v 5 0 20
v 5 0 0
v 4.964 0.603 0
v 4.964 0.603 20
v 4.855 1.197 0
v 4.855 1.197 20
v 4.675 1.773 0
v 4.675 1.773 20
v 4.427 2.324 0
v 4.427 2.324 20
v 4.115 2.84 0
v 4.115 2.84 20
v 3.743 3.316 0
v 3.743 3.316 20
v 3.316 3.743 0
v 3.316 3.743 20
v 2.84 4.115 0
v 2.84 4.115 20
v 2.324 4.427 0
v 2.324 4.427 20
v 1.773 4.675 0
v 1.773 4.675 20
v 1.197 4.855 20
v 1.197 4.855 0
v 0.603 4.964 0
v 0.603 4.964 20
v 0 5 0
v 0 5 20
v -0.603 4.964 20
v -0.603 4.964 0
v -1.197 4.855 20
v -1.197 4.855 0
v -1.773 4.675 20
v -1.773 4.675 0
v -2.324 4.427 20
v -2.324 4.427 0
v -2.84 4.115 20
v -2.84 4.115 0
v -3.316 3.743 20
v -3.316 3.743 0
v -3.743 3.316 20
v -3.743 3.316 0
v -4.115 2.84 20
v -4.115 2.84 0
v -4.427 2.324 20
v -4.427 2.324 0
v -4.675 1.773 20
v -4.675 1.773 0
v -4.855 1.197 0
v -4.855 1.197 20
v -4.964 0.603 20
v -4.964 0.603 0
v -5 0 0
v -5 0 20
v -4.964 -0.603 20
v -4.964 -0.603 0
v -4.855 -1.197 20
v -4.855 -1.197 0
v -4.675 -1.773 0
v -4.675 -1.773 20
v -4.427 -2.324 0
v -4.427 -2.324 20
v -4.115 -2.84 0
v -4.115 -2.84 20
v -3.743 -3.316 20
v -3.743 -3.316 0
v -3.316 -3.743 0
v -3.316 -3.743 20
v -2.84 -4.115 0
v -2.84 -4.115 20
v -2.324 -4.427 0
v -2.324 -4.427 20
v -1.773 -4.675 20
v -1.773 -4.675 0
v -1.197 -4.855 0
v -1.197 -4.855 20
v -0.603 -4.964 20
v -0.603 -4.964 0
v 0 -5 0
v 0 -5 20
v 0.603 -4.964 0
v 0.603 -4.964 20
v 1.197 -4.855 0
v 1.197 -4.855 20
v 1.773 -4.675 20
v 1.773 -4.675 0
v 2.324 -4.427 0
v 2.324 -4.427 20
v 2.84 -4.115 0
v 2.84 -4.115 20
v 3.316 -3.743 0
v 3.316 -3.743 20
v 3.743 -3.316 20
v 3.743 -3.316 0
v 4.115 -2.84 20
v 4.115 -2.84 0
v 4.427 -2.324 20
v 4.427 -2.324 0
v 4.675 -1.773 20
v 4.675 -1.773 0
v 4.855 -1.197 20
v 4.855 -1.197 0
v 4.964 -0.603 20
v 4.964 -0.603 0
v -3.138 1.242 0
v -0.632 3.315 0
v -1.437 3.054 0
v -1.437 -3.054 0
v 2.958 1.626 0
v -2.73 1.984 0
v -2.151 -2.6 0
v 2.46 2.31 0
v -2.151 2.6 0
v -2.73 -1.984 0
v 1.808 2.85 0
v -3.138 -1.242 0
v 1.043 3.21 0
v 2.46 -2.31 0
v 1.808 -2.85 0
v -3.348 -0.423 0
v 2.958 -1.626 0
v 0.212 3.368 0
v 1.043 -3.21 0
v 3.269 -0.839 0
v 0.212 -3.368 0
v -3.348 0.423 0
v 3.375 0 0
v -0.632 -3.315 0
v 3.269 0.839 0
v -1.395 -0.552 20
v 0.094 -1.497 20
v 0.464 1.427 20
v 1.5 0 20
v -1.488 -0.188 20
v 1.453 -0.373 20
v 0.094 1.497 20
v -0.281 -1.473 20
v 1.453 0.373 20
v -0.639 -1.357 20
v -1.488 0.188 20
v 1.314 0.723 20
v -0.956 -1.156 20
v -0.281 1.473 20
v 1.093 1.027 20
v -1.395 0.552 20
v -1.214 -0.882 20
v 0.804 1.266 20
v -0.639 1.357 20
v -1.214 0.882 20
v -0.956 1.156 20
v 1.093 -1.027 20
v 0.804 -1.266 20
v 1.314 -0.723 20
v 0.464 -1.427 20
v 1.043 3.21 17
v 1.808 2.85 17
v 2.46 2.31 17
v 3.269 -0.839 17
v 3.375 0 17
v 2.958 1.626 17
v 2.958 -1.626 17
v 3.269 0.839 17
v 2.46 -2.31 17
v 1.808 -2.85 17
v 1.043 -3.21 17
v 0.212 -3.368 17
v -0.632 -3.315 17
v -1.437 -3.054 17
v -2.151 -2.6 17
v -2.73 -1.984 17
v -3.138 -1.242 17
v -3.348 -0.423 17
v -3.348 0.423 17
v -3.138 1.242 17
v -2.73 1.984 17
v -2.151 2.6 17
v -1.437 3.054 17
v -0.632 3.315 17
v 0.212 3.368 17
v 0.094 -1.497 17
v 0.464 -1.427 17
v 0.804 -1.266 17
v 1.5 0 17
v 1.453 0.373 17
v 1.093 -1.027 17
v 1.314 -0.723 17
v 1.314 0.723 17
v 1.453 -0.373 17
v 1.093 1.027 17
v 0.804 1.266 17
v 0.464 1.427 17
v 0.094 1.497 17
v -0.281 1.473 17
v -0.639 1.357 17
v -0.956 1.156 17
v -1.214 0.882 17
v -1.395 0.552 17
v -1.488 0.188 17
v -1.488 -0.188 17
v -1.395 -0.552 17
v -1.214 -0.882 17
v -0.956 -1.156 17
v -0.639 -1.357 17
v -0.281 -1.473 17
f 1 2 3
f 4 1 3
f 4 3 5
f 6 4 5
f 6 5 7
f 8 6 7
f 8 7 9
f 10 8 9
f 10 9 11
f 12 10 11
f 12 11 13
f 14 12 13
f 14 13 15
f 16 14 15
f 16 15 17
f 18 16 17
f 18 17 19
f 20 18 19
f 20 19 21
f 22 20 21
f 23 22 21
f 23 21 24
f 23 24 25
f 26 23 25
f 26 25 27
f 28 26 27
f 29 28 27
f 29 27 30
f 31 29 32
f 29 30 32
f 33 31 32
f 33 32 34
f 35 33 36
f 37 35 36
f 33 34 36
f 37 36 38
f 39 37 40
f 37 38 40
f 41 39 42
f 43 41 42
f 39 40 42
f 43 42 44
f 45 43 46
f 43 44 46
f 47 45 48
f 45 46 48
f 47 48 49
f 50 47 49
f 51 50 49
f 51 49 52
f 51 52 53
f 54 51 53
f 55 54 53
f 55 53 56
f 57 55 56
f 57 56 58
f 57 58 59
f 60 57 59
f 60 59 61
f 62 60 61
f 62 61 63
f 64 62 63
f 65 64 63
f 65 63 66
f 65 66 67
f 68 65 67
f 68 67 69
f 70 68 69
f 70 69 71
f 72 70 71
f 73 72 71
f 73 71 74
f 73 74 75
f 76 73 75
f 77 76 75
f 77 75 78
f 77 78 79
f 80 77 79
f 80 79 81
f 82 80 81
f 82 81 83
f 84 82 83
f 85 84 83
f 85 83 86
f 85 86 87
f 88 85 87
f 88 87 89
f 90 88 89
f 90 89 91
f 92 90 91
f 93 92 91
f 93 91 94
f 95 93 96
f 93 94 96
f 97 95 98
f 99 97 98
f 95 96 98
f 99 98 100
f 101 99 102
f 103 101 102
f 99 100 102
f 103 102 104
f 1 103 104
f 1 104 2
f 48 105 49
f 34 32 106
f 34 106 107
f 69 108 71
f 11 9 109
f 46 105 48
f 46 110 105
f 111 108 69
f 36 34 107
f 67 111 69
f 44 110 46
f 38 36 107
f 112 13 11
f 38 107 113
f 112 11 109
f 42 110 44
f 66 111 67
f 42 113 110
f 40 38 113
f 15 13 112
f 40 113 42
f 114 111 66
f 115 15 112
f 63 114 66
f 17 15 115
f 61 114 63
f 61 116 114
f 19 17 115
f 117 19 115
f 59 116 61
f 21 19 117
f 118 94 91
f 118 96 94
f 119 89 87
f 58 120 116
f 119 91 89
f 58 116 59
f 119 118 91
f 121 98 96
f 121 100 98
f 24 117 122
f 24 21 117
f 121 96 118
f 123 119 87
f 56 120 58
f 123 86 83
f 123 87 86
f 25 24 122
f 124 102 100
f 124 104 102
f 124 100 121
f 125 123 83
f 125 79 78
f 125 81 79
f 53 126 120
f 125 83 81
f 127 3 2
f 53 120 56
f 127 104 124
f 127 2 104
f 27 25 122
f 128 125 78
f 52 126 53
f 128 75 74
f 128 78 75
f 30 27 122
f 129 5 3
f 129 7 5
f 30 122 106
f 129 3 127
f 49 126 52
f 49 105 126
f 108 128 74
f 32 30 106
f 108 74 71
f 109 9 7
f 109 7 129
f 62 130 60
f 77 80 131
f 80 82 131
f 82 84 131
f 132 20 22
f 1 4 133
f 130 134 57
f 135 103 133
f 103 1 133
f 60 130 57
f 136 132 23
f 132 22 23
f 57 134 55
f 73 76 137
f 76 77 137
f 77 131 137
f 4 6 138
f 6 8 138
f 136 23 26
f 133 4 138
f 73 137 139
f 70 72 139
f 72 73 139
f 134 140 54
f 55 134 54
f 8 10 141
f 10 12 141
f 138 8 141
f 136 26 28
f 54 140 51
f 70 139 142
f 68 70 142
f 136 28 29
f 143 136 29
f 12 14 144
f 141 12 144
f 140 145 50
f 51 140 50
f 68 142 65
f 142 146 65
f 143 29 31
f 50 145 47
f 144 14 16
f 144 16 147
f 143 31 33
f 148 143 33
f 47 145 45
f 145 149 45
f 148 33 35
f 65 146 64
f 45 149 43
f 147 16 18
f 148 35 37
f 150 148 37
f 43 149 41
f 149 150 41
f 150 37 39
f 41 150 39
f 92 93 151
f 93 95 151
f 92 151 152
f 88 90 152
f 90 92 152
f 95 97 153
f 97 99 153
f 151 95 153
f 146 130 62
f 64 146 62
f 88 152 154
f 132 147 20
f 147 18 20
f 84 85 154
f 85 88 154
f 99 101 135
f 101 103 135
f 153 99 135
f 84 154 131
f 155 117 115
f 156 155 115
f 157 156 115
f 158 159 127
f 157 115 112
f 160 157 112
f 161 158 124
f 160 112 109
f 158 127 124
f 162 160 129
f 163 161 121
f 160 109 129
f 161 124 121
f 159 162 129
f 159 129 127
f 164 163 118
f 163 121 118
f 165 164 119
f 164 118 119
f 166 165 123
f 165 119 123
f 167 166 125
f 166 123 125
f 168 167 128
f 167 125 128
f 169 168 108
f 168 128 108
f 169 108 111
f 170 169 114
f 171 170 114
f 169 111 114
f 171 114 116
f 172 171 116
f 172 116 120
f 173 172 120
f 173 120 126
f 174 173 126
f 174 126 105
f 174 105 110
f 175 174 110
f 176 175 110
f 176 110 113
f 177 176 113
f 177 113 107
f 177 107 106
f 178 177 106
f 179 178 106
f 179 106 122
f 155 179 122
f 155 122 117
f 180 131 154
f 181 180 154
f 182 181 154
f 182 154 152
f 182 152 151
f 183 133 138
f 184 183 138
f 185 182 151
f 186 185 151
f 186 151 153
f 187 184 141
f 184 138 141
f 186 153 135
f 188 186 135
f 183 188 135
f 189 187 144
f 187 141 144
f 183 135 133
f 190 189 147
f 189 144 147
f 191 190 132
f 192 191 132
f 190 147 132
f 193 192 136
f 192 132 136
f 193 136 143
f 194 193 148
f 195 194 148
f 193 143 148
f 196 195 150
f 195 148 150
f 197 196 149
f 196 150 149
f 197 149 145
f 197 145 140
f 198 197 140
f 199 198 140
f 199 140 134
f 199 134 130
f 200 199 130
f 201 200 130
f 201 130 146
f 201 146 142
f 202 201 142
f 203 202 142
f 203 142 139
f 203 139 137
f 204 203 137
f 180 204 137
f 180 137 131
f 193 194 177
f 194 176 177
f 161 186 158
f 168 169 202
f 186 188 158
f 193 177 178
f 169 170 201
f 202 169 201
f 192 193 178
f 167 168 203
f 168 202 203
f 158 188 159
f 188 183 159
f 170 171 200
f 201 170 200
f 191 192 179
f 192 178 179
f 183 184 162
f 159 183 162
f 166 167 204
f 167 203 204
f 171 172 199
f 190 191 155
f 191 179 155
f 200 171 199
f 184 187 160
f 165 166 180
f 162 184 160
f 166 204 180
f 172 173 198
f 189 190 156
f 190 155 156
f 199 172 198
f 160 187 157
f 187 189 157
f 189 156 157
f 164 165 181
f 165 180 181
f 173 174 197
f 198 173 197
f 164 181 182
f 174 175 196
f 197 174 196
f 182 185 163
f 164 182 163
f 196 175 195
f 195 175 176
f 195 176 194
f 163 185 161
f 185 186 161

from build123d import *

# Parameters (mm, degrees)
SKETCH_R        = 5
PAD_DEPTH       = 20
SKETCH001_R     = 3.375
POCKET_DEPTH    = 17
SKETCH002_R     = 1.5
POCKET001_DEPTH = 20.001


with BuildPart() as part:
    # Sketch → Pad (new body)
    with BuildSketch(Plane.XY):
        Circle(SKETCH_R)
    extrude(amount=PAD_DEPTH)

    # Sketch001 → Pocket (cut)
    with BuildSketch(Plane(origin=(0, 0, 0), x_dir=(1, 0, 0), z_dir=(0, 0, -1))):
        Circle(SKETCH001_R)
    extrude(amount=-POCKET_DEPTH, mode=Mode.SUBTRACT)

    # Sketch002 → Pocket001 (cut, through all)
    with BuildSketch(Plane.XY.offset(20)):
        Circle(SKETCH002_R)
    extrude(amount=-POCKET001_DEPTH, mode=Mode.SUBTRACT)


solid = part.part
